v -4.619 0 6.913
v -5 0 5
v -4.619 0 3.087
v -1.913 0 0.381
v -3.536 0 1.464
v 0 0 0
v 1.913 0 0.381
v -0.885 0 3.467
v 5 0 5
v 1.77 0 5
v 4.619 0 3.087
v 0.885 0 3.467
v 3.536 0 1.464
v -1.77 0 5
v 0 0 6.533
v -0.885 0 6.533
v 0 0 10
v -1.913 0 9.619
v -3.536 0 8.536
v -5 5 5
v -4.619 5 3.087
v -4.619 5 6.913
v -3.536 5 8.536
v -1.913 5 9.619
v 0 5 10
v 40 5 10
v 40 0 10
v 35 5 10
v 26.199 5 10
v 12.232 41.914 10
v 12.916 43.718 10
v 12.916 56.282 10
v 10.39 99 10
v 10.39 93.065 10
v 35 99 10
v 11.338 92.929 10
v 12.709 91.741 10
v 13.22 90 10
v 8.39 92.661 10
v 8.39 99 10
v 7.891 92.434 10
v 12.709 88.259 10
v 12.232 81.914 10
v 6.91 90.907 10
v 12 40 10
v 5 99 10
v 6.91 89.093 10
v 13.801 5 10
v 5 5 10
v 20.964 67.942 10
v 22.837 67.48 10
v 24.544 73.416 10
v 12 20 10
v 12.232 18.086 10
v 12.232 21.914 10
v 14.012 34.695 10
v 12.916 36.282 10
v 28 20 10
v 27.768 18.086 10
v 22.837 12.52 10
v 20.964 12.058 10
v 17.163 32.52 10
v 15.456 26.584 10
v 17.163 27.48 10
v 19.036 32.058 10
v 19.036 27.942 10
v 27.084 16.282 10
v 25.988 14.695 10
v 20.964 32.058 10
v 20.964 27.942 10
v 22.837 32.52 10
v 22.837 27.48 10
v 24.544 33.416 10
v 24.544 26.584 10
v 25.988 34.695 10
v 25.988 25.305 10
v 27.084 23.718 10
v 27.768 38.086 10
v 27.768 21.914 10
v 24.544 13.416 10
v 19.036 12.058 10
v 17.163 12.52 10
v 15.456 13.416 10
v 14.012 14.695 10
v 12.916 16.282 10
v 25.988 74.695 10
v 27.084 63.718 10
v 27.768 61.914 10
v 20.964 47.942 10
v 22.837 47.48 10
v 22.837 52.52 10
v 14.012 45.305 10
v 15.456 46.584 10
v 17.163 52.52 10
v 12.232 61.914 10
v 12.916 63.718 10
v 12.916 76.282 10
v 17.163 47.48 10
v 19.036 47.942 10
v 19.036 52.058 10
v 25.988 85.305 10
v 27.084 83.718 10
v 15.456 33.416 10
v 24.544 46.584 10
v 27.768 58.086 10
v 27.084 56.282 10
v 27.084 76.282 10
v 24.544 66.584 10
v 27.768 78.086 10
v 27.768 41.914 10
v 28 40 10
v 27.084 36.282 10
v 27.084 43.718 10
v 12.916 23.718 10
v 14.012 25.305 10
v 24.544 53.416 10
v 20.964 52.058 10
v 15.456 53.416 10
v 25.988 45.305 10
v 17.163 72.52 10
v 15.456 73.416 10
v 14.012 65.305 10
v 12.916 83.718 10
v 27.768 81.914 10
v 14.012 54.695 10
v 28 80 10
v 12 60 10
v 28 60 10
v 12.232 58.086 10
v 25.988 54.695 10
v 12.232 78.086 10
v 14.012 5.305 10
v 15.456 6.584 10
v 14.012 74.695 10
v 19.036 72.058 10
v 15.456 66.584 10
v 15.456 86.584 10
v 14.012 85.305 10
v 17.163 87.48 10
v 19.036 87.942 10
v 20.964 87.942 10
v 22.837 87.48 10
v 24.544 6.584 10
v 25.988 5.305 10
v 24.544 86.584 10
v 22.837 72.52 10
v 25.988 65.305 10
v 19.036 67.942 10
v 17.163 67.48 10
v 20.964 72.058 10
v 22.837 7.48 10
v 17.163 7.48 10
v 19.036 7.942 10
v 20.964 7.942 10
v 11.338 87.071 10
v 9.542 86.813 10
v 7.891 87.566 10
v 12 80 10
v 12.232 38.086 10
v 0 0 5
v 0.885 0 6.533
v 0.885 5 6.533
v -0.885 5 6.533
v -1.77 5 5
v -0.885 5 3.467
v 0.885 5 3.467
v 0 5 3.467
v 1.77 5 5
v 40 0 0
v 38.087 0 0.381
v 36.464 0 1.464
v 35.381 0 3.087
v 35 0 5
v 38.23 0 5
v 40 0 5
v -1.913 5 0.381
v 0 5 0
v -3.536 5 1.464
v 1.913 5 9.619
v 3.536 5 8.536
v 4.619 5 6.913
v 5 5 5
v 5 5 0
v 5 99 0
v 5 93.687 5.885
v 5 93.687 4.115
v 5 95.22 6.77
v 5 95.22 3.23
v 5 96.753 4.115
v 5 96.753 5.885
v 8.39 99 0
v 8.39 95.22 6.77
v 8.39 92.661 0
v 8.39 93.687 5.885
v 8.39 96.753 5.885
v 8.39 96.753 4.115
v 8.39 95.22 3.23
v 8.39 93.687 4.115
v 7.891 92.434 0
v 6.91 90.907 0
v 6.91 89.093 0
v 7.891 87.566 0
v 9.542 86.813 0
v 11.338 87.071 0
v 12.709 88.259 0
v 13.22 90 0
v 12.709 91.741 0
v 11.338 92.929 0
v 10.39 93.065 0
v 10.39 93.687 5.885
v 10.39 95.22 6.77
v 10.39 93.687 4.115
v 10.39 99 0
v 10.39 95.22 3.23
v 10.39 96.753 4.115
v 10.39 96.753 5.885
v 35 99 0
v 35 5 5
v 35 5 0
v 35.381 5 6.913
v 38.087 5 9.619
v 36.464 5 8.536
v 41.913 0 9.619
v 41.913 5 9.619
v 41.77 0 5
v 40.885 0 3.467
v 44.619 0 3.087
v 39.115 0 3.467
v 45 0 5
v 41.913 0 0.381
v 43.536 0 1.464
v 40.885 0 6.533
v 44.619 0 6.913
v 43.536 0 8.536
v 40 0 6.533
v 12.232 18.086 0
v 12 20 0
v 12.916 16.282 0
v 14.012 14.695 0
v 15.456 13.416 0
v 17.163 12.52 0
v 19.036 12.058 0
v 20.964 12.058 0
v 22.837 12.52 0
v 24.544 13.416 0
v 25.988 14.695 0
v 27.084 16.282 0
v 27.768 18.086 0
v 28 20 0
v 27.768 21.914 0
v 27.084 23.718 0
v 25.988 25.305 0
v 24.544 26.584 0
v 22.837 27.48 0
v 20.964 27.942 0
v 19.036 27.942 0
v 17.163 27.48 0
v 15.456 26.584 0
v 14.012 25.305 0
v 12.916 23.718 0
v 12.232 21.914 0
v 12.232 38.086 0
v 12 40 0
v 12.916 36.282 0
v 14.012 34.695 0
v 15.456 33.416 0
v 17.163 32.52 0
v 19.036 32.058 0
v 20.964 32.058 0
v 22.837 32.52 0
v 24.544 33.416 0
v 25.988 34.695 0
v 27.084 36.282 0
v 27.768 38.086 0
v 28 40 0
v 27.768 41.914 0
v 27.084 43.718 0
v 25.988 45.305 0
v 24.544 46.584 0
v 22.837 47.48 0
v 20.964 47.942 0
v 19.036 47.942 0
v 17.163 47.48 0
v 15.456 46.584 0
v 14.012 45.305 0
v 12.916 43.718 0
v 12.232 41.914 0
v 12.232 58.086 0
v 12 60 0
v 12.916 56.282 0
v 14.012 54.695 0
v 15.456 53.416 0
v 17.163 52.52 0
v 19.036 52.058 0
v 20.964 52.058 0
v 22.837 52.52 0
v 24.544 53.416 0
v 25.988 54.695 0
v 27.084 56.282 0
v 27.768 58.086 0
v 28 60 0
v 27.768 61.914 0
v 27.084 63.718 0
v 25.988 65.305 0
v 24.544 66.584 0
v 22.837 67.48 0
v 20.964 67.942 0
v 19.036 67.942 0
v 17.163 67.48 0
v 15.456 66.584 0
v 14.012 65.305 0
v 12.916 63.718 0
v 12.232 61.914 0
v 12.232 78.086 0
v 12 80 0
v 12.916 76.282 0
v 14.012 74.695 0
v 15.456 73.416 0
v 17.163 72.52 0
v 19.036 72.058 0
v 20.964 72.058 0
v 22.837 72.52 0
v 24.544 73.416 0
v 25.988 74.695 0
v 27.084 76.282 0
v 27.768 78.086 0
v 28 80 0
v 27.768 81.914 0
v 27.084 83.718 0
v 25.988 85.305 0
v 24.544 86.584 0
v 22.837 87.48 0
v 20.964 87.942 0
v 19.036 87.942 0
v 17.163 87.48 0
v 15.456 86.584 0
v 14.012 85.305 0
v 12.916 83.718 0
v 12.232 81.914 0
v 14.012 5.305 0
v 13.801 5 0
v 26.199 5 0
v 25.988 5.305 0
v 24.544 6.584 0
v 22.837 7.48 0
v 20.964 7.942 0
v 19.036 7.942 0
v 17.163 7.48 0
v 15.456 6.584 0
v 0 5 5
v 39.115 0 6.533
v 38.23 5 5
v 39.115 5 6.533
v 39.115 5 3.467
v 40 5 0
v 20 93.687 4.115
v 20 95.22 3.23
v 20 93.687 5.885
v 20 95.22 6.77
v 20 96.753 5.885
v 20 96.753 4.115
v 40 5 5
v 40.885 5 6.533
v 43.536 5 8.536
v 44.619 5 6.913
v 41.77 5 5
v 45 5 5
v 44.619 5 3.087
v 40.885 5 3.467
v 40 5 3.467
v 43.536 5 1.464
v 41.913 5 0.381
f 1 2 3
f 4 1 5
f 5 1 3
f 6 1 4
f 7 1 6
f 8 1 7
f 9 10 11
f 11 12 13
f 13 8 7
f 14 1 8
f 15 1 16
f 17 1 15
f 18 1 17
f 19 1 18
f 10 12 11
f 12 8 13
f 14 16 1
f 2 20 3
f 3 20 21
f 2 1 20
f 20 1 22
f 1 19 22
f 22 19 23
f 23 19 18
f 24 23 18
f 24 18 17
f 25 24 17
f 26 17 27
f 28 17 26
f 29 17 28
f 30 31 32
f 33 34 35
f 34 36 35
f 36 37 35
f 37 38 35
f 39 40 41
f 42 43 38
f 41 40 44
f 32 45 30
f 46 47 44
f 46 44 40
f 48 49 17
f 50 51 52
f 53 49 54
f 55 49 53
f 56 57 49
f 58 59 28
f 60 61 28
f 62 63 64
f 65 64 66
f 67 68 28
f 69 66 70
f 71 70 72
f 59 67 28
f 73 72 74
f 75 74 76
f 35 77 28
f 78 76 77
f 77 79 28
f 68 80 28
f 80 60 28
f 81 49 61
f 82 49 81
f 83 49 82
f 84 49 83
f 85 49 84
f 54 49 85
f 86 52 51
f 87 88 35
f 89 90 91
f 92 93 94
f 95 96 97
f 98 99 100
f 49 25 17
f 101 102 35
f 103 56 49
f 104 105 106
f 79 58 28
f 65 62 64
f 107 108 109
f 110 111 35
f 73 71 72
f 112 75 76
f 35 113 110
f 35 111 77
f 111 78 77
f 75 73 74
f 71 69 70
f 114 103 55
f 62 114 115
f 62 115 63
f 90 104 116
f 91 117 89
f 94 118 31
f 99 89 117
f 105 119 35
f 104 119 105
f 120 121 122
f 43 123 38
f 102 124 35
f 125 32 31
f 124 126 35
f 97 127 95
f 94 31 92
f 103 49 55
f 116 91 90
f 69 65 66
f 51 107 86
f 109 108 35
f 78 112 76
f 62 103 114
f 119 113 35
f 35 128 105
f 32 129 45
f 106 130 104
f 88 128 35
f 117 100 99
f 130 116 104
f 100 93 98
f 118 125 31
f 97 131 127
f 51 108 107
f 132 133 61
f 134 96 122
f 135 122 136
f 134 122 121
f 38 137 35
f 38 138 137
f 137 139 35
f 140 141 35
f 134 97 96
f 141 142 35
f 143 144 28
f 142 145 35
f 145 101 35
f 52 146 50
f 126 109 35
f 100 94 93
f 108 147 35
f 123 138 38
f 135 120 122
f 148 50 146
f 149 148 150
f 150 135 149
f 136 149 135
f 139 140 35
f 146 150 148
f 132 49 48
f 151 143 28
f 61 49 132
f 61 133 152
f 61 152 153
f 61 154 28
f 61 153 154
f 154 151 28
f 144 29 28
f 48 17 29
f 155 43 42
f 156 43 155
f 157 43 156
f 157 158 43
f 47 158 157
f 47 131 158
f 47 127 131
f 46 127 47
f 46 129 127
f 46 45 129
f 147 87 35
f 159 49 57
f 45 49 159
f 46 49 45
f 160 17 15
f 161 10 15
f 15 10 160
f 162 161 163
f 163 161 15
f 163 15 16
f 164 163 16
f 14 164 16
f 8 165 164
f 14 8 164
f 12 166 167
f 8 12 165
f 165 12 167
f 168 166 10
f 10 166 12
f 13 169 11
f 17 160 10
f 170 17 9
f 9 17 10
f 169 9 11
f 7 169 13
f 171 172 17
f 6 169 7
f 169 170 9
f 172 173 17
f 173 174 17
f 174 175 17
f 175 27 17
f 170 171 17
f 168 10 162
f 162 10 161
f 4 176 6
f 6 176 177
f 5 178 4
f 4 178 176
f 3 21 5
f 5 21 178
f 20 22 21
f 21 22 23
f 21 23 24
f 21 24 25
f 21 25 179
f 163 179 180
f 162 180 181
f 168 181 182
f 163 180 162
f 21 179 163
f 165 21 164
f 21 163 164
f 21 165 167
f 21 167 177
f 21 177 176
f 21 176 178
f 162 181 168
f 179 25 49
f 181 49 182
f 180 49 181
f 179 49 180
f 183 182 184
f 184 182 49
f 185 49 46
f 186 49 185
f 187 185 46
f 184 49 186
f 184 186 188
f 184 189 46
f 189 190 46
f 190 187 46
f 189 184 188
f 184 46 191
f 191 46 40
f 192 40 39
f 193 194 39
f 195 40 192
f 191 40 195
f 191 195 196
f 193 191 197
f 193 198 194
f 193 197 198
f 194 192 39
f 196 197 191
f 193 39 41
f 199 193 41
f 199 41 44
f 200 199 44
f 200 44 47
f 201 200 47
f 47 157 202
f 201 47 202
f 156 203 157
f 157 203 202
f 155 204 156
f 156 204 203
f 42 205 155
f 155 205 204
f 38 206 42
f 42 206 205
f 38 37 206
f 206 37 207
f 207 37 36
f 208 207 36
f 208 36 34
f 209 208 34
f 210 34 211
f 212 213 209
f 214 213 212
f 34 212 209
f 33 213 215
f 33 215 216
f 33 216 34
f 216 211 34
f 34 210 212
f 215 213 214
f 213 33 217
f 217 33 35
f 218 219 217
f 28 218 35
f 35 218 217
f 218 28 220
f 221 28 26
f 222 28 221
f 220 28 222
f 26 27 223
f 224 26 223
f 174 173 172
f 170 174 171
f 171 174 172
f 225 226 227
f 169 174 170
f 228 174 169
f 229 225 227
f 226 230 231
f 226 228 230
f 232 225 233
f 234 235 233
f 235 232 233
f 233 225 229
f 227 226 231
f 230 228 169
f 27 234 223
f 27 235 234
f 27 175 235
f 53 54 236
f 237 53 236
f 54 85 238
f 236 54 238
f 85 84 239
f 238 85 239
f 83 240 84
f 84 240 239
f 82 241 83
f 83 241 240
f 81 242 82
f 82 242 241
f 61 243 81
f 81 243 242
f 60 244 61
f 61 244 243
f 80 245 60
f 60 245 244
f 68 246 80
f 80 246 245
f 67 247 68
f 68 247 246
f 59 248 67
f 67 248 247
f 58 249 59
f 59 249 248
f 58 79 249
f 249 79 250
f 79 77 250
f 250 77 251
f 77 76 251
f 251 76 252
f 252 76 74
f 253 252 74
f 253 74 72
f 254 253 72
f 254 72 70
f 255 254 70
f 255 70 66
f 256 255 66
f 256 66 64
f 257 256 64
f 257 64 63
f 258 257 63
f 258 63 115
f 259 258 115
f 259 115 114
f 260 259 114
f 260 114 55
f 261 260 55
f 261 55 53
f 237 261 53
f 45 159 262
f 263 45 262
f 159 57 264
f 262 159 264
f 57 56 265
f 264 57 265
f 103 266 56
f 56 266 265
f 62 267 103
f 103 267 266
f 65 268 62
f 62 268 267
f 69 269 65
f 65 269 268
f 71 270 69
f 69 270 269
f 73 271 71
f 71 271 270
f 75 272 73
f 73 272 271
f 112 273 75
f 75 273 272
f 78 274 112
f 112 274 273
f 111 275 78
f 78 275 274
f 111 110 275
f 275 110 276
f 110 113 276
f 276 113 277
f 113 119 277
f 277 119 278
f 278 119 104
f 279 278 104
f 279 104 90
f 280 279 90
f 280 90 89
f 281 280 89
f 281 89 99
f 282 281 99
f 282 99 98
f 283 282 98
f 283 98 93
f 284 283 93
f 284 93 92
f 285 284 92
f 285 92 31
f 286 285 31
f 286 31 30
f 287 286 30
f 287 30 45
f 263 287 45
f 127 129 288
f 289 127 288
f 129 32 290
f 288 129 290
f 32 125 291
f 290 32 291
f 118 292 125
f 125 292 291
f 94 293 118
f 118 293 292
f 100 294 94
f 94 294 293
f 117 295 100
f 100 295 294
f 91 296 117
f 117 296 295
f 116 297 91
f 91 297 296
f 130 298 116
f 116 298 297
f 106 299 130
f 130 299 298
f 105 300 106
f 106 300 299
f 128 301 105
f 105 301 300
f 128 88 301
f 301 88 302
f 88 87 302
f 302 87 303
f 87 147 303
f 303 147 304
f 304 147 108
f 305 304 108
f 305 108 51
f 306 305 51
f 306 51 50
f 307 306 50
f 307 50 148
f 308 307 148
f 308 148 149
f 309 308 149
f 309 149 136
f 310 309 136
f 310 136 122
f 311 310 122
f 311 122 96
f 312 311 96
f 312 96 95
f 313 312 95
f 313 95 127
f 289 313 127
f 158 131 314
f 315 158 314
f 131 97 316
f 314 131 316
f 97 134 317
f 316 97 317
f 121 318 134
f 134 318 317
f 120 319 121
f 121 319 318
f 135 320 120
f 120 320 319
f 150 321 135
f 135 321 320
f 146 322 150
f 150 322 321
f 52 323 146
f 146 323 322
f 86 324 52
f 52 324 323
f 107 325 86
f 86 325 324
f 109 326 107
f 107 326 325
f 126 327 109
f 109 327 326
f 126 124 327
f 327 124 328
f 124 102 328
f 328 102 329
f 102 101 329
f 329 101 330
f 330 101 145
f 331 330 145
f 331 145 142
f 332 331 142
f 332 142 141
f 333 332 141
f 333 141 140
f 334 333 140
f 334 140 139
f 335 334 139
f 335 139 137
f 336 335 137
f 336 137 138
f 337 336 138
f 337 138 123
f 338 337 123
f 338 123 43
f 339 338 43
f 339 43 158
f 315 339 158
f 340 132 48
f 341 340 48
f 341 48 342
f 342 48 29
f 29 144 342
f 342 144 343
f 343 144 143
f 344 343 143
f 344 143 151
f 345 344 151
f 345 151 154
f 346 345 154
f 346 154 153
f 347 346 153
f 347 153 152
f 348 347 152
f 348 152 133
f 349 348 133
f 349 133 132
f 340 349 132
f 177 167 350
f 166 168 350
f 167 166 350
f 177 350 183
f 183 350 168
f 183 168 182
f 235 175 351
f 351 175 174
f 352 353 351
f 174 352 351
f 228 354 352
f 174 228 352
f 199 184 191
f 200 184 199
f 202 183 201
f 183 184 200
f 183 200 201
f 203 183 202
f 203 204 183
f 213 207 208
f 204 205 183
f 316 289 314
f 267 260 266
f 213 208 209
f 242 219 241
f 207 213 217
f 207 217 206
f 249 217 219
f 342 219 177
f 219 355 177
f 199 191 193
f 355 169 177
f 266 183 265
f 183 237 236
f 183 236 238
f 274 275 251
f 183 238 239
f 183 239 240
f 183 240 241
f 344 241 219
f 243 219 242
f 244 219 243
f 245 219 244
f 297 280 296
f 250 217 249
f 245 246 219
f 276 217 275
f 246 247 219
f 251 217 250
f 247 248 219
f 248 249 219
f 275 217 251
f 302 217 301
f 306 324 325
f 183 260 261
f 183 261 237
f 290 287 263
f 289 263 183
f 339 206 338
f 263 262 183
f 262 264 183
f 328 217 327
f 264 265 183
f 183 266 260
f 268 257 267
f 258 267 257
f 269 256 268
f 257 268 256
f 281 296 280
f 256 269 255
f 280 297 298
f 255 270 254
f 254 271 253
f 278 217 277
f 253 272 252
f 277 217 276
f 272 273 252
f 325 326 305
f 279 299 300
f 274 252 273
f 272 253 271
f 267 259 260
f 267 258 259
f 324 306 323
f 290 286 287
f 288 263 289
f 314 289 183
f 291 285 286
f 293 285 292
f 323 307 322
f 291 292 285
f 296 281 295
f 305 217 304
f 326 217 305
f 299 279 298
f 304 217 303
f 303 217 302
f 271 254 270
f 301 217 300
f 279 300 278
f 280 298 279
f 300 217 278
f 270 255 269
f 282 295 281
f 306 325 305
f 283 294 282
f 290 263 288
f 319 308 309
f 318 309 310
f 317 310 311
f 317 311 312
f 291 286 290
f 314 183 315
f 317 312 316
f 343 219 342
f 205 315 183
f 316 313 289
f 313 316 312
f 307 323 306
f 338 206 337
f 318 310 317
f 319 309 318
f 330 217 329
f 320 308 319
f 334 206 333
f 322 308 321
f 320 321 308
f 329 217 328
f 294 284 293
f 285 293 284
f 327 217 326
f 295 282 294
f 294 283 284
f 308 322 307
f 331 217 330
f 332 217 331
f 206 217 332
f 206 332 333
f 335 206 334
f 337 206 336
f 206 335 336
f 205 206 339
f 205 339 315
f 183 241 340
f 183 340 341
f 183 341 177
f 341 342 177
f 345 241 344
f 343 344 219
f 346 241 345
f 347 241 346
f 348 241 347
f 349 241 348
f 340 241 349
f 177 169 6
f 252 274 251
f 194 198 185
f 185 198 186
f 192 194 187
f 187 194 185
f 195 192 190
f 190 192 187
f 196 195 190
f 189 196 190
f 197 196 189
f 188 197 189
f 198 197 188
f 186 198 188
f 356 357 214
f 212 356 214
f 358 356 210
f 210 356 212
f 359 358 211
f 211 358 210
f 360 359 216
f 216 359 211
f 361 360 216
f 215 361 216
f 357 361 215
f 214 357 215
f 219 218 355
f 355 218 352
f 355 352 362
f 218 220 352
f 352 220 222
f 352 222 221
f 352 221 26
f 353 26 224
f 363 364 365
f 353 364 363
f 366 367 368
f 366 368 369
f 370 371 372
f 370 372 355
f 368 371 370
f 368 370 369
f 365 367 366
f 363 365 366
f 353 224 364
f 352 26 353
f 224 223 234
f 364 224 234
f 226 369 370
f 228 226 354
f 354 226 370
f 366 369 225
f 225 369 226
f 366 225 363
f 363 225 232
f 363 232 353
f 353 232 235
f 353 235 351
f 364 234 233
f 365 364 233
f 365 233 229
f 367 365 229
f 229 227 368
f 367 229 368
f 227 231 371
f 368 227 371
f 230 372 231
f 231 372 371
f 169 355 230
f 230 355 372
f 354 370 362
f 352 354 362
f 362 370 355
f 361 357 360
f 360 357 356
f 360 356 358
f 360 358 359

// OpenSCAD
ArmLenght     = 40; //mm
RodHoleRad   =  3.22; //mm
ScrewHoleRad =  1.77; //mm



//Draw the base
difference()
{
	union()
	{	
		cube([40,5,10]);
		translate([0,0,5]) rotate([270,0,00]) cylinder(h=5,r=5); 
		translate([40,0,5]) rotate([270,0,00]) cylinder(h=5,r=5); 
	}
	translate([0,0,5]) rotate([270,0,00]) cylinder(h=5,r=ScrewHoleRad); 
	translate([40,0,5]) rotate([270,0,00]) cylinder(h=5,r=ScrewHoleRad); 
}


//Draw the main arm
difference()
{
	translate([5,5,0]) cube([30,94,10]);

	//Draw the Support Rod hole ( this hole will hold the Rod that will be inserted in the rack )
	translate([10,90,0]) cylinder(h=20, r=RodHoleRad);
	translate([10-RodHoleRad+RodHoleRad/2,90,0]) cube([2,10,20]);
	translate([20,90+RodHoleRad+2,5]) rotate([0,270,0])  cylinder(h=20,r=ScrewHoleRad);

	//Draw holes to removed a uneeded plastic
	translate([20,80,0]) cylinder(h=20, r=8);
	translate([20,60,0]) cylinder(h=20, r=8);
	translate([20,40,0]) cylinder(h=20, r=8);
	translate([20,20,0]) cylinder(h=20, r=8);
	translate([20,0,0]) cylinder(h=20, r=8);
	
	
}
